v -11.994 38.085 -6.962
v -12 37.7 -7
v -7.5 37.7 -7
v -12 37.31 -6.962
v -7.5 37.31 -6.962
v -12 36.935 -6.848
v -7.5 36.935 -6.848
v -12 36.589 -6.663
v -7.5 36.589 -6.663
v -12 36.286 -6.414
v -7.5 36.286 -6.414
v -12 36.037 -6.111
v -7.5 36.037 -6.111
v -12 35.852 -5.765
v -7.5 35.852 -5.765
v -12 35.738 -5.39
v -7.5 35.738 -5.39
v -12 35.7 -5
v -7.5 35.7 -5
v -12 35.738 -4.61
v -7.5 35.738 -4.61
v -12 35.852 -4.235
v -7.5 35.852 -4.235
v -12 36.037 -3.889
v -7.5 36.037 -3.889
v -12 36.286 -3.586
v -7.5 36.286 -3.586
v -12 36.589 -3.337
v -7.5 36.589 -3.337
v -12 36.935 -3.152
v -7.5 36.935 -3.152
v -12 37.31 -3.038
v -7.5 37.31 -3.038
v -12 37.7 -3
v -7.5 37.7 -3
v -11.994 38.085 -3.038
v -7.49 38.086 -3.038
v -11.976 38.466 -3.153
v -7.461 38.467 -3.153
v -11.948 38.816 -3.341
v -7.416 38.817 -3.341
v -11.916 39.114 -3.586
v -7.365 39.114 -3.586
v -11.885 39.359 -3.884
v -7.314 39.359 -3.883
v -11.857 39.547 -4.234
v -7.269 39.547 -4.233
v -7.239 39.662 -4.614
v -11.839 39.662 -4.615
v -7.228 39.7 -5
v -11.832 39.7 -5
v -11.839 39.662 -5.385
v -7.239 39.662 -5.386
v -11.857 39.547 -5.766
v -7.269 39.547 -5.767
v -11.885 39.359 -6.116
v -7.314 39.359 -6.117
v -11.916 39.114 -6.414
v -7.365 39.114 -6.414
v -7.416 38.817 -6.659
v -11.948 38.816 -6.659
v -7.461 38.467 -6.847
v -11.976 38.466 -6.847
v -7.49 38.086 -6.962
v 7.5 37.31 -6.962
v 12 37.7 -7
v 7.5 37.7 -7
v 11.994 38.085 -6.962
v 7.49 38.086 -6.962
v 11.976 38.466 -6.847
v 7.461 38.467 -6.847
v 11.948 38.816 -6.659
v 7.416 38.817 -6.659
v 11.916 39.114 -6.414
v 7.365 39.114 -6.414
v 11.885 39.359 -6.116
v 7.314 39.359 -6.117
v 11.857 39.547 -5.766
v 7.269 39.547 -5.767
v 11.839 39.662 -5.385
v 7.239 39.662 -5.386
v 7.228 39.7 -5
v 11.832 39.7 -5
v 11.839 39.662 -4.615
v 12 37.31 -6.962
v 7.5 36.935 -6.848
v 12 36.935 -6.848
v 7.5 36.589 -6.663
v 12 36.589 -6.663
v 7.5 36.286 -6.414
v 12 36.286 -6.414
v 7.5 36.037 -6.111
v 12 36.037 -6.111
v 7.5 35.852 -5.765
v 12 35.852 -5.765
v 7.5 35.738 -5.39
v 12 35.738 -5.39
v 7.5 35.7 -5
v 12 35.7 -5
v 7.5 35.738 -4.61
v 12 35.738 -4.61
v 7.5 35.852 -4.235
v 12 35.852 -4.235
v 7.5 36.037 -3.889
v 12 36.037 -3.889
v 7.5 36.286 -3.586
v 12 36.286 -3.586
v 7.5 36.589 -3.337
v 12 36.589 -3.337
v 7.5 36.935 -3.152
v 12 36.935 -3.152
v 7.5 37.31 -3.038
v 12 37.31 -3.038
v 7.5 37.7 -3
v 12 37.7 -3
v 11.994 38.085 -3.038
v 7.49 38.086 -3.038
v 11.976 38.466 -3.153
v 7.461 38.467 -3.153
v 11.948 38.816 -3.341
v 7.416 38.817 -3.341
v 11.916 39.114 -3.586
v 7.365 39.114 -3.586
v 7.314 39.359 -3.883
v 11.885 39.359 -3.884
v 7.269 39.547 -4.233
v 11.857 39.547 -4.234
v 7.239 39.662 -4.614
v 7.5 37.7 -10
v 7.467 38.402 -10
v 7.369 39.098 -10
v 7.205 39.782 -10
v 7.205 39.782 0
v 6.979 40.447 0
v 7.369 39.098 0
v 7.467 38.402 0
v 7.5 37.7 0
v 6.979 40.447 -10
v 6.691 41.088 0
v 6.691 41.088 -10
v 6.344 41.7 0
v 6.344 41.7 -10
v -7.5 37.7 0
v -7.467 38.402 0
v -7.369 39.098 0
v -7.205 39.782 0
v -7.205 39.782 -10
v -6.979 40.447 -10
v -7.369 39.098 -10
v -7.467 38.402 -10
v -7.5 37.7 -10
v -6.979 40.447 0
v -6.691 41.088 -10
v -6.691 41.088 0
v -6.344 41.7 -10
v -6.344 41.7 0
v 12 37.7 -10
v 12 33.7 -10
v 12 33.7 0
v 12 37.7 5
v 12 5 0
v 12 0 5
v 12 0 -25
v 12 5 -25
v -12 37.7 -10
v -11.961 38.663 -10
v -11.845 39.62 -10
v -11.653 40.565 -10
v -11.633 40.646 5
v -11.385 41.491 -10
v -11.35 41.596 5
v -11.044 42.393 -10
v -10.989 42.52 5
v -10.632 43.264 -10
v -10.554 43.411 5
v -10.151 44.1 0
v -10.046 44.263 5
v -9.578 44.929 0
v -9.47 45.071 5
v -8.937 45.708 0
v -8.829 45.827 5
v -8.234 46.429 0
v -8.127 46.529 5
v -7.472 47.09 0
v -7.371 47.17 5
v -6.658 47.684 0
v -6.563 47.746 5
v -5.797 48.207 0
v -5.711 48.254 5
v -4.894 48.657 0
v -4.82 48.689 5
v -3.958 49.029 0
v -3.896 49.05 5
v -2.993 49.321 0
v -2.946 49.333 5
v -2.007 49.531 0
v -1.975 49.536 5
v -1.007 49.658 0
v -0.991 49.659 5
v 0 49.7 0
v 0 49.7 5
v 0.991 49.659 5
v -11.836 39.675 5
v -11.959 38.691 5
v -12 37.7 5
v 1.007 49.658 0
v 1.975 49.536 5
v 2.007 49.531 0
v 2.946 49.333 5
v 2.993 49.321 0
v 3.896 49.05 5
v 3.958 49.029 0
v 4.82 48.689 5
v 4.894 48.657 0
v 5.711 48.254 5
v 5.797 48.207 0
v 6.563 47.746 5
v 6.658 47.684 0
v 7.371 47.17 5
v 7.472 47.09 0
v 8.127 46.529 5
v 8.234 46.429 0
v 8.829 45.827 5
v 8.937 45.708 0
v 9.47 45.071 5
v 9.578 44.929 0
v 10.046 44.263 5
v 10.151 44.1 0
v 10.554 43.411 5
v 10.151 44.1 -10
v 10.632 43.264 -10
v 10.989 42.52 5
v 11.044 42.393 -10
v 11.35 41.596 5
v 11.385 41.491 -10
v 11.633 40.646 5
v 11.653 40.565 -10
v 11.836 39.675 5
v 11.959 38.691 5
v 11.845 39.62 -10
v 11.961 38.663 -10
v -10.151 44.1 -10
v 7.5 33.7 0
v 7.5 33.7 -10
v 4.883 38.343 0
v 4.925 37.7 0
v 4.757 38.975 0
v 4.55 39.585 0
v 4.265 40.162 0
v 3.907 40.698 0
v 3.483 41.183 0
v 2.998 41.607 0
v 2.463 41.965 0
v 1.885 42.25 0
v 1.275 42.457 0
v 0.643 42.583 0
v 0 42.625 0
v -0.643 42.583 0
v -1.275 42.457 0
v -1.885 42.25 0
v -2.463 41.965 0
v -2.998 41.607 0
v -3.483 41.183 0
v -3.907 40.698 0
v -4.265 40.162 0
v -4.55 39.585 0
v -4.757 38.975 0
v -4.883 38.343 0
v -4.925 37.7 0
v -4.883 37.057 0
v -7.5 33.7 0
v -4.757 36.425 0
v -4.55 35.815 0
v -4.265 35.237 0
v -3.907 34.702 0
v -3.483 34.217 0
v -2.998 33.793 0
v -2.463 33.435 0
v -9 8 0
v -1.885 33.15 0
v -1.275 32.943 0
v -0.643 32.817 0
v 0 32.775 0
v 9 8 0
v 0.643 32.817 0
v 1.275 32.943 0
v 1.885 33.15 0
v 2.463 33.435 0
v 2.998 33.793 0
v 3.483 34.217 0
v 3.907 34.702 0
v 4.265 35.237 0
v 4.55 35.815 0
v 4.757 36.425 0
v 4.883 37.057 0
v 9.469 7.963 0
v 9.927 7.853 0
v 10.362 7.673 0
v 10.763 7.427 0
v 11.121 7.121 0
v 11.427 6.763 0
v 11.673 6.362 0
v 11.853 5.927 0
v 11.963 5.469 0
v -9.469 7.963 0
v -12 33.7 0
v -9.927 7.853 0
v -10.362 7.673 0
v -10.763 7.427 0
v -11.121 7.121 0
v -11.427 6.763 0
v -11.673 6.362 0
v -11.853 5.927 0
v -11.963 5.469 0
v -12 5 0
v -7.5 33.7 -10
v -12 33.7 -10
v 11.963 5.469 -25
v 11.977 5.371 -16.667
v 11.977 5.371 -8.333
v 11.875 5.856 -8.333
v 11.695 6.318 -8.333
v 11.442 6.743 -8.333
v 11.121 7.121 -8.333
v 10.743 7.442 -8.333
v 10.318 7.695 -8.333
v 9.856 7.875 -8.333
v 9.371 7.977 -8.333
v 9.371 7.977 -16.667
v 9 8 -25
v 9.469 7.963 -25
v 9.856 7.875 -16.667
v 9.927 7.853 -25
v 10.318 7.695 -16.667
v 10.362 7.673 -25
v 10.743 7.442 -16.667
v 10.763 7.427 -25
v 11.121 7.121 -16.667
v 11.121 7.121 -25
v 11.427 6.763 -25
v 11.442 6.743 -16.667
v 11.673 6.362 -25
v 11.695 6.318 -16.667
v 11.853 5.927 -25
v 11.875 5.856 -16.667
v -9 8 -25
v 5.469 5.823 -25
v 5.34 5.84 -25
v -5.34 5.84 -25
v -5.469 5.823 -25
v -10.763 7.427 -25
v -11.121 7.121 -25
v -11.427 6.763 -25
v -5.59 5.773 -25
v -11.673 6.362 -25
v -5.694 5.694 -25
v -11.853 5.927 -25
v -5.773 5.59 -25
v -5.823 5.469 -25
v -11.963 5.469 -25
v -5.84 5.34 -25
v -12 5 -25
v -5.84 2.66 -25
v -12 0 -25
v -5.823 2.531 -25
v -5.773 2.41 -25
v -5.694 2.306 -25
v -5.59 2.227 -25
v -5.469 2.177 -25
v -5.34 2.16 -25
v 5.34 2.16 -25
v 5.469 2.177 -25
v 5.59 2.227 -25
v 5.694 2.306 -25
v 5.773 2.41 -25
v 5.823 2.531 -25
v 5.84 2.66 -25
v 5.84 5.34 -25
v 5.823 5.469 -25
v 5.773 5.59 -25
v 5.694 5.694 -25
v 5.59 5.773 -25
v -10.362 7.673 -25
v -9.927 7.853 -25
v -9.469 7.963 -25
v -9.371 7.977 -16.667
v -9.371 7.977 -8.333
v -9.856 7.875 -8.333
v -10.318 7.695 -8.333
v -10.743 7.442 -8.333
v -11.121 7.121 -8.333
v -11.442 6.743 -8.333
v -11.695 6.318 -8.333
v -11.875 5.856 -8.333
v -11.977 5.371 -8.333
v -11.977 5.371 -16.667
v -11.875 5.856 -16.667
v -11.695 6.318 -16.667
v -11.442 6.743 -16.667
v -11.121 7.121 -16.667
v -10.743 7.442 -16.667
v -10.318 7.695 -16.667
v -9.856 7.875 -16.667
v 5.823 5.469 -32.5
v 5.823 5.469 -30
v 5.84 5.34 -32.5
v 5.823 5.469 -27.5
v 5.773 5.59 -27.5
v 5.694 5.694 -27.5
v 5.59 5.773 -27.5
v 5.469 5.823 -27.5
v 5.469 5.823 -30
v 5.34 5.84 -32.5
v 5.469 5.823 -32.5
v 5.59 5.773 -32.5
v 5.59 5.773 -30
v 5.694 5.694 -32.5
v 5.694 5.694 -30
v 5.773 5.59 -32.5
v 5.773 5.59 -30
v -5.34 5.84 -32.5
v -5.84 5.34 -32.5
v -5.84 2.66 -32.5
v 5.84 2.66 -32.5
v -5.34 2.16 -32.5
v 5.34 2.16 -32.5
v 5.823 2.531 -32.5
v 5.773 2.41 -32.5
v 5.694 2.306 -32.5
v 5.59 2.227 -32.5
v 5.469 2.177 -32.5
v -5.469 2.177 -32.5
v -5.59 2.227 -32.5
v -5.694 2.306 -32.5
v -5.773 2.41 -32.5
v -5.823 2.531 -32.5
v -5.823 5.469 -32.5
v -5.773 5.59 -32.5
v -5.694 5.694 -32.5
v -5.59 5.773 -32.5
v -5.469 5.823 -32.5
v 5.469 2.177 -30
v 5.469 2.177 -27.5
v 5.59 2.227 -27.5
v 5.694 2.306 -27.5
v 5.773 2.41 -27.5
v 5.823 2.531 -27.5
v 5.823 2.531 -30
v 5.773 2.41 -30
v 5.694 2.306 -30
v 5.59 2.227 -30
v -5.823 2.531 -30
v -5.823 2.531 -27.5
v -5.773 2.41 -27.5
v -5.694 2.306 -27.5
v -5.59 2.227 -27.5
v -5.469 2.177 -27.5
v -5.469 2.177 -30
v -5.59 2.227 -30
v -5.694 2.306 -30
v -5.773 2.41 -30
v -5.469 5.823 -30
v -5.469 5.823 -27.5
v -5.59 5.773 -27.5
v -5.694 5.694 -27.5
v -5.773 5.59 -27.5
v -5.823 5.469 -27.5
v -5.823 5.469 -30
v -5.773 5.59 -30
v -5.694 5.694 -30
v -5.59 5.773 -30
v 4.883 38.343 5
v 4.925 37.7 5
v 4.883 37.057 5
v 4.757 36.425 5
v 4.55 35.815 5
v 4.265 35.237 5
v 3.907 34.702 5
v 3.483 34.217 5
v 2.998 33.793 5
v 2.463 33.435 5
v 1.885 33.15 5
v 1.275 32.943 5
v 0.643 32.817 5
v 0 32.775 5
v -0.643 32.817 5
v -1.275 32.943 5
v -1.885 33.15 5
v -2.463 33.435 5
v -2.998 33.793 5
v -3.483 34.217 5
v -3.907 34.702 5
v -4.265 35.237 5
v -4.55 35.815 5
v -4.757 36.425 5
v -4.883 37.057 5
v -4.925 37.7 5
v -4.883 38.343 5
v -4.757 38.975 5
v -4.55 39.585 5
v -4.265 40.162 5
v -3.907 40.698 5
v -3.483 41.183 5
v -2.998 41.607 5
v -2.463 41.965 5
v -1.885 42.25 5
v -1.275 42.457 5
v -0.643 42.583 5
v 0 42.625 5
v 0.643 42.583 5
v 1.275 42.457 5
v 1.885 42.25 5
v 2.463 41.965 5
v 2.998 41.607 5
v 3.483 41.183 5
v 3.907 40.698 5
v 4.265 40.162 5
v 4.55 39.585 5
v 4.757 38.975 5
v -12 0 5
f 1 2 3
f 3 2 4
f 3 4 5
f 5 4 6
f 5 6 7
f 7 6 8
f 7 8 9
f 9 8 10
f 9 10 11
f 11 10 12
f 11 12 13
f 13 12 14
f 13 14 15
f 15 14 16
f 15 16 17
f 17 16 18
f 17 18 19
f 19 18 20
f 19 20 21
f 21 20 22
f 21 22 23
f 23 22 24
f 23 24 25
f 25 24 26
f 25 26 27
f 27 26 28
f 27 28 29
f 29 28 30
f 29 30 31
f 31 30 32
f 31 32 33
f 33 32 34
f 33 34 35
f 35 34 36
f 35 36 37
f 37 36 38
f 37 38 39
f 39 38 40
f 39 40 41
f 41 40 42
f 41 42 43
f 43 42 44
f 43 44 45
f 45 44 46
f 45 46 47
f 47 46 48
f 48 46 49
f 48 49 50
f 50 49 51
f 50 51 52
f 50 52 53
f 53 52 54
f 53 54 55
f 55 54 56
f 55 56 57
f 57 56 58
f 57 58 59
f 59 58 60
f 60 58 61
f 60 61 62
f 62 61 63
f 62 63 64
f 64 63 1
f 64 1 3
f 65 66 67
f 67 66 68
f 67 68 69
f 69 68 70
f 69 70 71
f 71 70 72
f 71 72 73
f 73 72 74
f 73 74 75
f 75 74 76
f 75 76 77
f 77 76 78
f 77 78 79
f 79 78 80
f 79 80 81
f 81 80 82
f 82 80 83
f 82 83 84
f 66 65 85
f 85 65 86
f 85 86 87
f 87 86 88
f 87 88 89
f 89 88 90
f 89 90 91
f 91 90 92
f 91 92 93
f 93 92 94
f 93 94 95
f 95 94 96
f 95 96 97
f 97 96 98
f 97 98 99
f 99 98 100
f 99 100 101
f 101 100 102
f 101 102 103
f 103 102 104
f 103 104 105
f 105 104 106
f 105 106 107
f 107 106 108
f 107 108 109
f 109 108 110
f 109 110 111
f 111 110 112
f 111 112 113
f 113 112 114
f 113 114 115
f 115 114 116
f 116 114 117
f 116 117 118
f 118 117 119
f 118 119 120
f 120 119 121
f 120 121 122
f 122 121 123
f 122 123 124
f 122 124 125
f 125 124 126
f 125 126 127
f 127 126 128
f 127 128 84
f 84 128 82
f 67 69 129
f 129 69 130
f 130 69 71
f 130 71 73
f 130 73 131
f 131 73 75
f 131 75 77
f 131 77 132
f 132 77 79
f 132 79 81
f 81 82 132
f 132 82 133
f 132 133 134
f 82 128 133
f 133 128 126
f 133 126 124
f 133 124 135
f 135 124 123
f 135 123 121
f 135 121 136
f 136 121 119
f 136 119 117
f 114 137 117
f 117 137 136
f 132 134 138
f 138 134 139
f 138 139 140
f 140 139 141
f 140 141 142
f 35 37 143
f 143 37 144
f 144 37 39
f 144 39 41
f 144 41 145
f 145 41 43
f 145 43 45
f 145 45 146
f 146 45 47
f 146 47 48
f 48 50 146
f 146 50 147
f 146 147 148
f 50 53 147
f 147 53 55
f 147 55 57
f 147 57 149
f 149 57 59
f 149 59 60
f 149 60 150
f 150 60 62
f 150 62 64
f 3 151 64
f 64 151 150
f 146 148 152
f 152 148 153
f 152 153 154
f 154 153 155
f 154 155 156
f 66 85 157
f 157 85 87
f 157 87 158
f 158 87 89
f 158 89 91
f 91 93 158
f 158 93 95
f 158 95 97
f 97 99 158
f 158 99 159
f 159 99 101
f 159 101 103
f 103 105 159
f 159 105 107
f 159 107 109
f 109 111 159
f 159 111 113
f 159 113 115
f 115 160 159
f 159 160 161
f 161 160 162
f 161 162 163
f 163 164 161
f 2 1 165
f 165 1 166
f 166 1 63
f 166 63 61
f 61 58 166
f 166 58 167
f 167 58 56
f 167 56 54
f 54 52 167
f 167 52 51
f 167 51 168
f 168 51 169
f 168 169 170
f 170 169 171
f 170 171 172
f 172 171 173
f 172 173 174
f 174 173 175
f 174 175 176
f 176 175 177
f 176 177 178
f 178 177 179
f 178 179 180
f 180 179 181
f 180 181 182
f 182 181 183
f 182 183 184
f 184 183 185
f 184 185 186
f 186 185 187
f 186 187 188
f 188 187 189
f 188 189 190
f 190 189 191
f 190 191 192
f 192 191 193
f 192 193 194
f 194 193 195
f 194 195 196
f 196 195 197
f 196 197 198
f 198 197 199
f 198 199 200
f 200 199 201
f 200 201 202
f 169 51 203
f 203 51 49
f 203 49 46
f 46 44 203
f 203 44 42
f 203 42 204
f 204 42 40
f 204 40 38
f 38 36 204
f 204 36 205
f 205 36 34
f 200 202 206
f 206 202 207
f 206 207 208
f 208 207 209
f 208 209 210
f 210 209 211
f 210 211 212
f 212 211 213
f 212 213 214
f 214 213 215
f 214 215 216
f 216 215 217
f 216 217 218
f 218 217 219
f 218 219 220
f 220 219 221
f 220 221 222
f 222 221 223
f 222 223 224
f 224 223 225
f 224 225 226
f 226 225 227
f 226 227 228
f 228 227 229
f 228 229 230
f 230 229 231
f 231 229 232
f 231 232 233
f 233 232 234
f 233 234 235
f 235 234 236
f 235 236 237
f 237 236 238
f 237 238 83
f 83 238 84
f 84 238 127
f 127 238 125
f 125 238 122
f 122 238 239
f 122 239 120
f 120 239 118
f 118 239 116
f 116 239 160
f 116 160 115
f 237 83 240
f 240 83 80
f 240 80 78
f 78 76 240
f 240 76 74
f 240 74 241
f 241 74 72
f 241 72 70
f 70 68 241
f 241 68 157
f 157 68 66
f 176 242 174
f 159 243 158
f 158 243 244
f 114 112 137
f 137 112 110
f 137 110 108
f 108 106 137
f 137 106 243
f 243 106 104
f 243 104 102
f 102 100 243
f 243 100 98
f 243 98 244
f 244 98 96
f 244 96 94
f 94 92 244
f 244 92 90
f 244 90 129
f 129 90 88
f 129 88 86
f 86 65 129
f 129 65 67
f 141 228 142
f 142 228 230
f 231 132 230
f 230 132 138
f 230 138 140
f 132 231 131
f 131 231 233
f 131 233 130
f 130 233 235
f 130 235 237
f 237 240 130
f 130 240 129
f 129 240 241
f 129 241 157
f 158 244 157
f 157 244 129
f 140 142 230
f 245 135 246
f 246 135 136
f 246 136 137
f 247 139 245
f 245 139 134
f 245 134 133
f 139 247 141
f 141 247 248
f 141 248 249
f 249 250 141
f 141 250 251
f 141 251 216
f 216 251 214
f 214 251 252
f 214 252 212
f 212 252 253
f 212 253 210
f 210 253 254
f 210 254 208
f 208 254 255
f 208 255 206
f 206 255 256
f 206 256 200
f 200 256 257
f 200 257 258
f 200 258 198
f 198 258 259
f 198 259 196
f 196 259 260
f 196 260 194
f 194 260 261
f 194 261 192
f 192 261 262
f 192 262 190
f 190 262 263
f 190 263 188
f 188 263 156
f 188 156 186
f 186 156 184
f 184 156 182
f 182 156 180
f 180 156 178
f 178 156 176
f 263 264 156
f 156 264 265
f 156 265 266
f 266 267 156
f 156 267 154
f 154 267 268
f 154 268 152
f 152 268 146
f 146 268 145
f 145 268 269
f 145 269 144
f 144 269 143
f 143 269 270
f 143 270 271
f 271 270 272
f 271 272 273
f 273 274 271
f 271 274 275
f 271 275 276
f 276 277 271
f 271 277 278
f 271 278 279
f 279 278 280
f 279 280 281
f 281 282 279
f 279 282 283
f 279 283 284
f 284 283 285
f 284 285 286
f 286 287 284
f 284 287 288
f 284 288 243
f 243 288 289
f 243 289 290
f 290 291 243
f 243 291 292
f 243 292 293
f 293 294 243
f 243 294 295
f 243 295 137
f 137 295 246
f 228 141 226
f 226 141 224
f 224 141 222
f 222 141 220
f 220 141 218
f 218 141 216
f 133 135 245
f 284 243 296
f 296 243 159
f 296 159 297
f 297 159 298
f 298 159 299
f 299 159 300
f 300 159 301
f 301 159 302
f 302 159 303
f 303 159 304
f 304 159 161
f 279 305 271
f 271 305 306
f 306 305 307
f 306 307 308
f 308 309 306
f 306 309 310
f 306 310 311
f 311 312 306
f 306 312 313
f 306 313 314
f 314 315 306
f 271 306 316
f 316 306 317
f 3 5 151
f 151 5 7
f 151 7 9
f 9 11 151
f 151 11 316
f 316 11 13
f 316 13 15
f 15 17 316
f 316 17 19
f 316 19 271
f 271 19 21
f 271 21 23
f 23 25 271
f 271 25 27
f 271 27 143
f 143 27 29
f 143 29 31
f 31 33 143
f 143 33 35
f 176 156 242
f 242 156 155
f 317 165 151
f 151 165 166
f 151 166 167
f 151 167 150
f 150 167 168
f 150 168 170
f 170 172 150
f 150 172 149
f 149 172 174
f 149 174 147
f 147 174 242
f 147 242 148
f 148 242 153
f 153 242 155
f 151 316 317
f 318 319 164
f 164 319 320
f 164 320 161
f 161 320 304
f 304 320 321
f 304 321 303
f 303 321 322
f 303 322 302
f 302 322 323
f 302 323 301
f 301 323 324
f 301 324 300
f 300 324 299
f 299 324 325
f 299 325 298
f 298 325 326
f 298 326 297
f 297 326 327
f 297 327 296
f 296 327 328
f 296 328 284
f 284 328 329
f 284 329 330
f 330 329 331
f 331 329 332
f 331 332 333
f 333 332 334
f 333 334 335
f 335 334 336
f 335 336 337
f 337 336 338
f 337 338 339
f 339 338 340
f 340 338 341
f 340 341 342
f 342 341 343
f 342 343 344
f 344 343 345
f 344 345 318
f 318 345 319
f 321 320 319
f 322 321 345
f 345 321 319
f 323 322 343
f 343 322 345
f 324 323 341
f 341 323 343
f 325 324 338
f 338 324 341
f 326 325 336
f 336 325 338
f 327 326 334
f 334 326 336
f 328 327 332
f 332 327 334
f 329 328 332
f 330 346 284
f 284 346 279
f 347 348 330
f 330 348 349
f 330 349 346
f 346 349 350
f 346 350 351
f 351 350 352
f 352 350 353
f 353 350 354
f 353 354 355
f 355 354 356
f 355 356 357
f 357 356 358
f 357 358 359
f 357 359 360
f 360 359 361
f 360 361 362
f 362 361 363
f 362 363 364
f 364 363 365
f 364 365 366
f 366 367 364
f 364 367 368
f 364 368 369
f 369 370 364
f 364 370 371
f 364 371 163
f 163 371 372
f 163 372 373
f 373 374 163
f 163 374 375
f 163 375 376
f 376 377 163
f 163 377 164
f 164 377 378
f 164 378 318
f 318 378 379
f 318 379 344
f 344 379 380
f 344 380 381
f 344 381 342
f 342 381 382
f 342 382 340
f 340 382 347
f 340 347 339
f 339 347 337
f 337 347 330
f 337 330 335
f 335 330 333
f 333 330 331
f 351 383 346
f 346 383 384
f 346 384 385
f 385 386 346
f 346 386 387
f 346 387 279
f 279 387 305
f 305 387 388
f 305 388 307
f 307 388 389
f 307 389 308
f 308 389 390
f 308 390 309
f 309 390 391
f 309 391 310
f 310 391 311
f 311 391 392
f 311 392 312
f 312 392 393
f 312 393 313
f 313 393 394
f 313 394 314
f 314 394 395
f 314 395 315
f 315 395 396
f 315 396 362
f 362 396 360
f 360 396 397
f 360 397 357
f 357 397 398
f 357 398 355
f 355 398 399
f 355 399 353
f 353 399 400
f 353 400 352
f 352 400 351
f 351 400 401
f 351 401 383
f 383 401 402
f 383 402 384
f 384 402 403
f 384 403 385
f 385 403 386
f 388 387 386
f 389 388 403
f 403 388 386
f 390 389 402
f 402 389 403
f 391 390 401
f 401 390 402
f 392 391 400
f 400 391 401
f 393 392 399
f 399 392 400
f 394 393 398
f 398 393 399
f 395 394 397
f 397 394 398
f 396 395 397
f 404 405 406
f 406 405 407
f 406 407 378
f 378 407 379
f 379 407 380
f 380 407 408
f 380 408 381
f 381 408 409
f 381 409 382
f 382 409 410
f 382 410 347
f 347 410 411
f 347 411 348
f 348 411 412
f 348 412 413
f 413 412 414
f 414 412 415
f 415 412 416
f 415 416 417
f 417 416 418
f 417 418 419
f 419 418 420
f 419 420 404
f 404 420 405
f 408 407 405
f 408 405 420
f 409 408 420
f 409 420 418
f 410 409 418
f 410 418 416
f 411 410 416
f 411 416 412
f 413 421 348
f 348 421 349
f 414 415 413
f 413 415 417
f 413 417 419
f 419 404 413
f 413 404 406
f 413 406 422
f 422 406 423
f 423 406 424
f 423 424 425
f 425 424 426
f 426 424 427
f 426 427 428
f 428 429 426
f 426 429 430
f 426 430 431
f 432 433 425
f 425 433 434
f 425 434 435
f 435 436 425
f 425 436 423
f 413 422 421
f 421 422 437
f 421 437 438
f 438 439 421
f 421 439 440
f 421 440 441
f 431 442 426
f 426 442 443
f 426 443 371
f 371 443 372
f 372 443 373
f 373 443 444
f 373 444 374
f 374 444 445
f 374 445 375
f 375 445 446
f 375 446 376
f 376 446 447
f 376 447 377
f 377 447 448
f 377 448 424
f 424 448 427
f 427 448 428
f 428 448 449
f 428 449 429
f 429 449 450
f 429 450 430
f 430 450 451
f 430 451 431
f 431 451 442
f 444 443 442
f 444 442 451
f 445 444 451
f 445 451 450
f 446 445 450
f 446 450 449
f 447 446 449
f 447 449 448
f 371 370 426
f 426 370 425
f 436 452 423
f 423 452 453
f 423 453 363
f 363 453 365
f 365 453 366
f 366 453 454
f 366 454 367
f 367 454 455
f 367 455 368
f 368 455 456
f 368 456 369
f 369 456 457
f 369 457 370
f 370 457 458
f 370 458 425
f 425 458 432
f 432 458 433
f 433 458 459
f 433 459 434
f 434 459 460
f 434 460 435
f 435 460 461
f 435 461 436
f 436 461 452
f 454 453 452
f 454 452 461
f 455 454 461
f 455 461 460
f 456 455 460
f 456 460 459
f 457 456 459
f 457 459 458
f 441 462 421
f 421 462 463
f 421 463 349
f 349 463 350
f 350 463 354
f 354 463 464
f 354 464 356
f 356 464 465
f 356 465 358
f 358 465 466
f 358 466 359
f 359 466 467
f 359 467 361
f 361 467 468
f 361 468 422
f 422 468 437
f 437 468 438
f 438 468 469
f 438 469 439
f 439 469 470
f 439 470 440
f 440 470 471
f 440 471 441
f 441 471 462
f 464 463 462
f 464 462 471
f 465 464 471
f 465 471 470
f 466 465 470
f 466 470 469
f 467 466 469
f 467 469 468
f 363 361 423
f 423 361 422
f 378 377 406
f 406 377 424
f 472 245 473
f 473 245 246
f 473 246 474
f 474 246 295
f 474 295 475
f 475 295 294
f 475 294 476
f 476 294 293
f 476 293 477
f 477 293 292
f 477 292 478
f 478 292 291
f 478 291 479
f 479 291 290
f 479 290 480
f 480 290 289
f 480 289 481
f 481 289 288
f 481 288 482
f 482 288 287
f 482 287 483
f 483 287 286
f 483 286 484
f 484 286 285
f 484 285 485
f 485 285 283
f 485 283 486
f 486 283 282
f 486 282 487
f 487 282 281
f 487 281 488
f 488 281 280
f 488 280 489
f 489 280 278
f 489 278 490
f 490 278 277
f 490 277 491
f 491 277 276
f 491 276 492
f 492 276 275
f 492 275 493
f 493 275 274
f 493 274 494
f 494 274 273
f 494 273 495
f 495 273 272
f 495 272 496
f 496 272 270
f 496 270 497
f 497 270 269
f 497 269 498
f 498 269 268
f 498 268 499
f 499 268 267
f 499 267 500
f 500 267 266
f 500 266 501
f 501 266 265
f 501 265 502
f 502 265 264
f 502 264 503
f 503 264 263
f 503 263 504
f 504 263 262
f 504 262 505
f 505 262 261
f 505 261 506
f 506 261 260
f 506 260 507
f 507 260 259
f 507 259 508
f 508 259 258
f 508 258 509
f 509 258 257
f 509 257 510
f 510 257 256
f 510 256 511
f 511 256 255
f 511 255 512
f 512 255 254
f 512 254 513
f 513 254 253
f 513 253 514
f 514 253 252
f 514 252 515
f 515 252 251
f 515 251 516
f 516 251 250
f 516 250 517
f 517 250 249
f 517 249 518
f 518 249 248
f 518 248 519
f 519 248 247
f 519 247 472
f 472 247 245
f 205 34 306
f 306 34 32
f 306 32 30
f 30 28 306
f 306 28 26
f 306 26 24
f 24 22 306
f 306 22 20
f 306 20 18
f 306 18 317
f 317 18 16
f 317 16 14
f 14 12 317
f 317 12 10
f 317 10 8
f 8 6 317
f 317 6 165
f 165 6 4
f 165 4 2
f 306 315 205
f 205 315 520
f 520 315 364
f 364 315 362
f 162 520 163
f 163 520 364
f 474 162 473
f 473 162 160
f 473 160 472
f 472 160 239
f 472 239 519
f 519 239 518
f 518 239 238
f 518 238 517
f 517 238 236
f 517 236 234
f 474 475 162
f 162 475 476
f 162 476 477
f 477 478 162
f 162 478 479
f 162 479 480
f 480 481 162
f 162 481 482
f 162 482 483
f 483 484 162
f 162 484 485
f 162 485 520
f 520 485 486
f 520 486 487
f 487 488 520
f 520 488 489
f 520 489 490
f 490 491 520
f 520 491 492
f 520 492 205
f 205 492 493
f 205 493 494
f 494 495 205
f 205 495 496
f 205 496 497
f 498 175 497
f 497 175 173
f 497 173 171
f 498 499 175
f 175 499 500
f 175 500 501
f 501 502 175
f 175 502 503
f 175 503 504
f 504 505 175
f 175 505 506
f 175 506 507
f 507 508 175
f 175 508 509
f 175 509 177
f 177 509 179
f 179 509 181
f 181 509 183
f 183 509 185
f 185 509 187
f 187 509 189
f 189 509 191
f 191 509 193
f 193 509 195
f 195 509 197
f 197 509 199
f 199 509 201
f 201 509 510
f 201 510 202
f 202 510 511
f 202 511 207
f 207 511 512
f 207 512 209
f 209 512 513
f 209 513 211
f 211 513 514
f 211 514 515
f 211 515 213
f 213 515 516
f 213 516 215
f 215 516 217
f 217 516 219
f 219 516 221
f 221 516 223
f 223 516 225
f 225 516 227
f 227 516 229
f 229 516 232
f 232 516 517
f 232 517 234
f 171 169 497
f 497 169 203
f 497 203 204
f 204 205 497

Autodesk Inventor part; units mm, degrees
ref_plane "YZ Plane" through (0, 0, 0) normal (1, 0, 0) x (0, 1, 0)
ref_plane "XZ Plane" through (0, 0, 0) normal (0, 1, 0) x (-1, 0, 0)
ref_plane "XY Plane" through (0, 0, 0) normal (0, 0, 1) x (1, 0, 0)
sketch "Sketch1" plane through (0, 0, 0) normal (0, 0, 1) x (1, 0, 0)
  line L0 (-12, 0) -> (12, 0)
  line L1 (12, 0) -> (12, 37.7)
  arc A0 (12, 37.7) -> (-12, 37.7) centre (0, 37.7) ccw
  line L2 (-12, 37.7) -> (-12, 0)
  circle A1 centre (0, 37.7) radius 4.925
  line L3 (12, 8) -> (-12, 8)
  line L4 (6, 6) -> (-6, 6) construction
  line L5 (-6, 6) -> (-6, 2) construction
  line L6 (-6, 2) -> (6, 2) construction
  line L7 (6, 2) -> (6, 6) construction
  line L8 (-5.84, 2.16) -> (-5.84, 5.84)
  line L9 (-5.84, 5.84) -> (5.84, 5.84)
  line L10 (5.84, 5.84) -> (5.84, 2.16)
  line L11 (5.84, 2.16) -> (-5.84, 2.16)
  point P0 (0, 0)
  point P1 (0, 0)
  point P2 (0, 2)
  dimension "d0" = 24
  dimension "d1" = 37.7
  dimension "d2" = 9.85
  dimension "d5" = 8
  dimension "d6" = 2
  dimension "d7" = 4
  dimension "d8" = 12
  dimension "d9" = 0.16
extrude "Extrusion1" add sketch "Sketch1" along normal blind 5 contours L2 L3 L1 L0 | L2 A0 L1 L3 | L8 L9 L10 L11
extrude "Extrusion2" add sketch "Sketch1" against normal blind 25 contours L2 L3 L1 L0 | L8 L9 L10 L11
sketch "Sketch3" plane through (0, 0, -25) normal (0, 0, -1) x (-1, 0, 0)
  line L0 (-5.84, 5.84) -> (-5.84, 2.16) projected
  line L1 (5.84, 5.84) -> (-5.84, 5.84) projected
  line L2 (5.84, 2.16) -> (5.84, 5.84) projected
  line L3 (-5.84, 2.16) -> (5.84, 2.16) projected
  point P0 (0, 0)
extrude "Extrusion3" add sketch "Sketch3" along normal blind 7.5
fillet "Fillet1" radius 0.5 4 edges at (-5.84, 5.84, -28.75) (-5.84, 2.16, -28.75) (5.84, 2.16, -28.75) (5.84, 5.84, -28.75)
fillet "Fillet2" radius 3 2 edges at (-12, 8, -12.5) (12, 8, -12.5)
sketch "Sketch4" plane through (0, 0, 0) normal (0, 0, -1) x (-1, 0, 0)
  line L0 (0, 41.7) -> (17.7659, 41.7) construction
  line L1 (17.7659, 41.7) -> (17.7659, 33.7) construction
  line L2 (17.7659, 33.7) -> (12, 33.7) construction
  line L3 (0, 33.7) -> (0, 41.7) construction
  arc A0 (12, 37.7) -> (-12, 37.7) centre (0, 37.7) ccw projected
  line L4 (12, 37.7) -> (12, 0) projected
  arc A1 (7.5, 37.7) -> (6.3443, 41.7) centre (0, 37.7) ccw
  line L5 (7.5, 37.7) -> (7.5, 33.7)
  line L6 (6.3443, 41.7) -> (10.1509, 44.1)
  line L7 (7.5, 33.7) -> (0, 33.7) construction
  line L8 (12, 33.7) -> (7.5, 33.7)
  arc A2 (6.3443, 41.7) -> (-7.5, 37.7) centre (0, 37.7) ccw construction
  line L9 (7.5, 33.7) -> (7.5, 0) construction
  point P0 (0, 0)
  point P1 (17.7659, 37.7)
  dimension "d16" = 8
  dimension "d17" = 4.5
extrude "Extrusion4" add sketch "Sketch4" along normal blind 10
mirror "Mirror1" about plane through (0, 0, 0) normal (1, 0, 0) of "Extrusion4"
sketch "Sketch5" plane through (0, 0, 0) normal (1, 0, 0) x (0, 1, 0)
  line L0 (32.775, 5) -> (42.625, 5) projected
  line L1 (42.625, 0) -> (32.775, 0) projected
  circle A0 centre (37.7, -5) radius 2
  line L2 (41.7, 0) -> (41.7, -10) projected
  point P0 (0, 0)
  point P1 (41.7, -5)
  point P2 (37.7, 5)
  dimension "d20" = 4
extrude "Extrusion5" cut sketch "Sketch5" along normal through all both and the other way through all
properties part number "Casing Attachment MH" material "Aluminum 6061"
